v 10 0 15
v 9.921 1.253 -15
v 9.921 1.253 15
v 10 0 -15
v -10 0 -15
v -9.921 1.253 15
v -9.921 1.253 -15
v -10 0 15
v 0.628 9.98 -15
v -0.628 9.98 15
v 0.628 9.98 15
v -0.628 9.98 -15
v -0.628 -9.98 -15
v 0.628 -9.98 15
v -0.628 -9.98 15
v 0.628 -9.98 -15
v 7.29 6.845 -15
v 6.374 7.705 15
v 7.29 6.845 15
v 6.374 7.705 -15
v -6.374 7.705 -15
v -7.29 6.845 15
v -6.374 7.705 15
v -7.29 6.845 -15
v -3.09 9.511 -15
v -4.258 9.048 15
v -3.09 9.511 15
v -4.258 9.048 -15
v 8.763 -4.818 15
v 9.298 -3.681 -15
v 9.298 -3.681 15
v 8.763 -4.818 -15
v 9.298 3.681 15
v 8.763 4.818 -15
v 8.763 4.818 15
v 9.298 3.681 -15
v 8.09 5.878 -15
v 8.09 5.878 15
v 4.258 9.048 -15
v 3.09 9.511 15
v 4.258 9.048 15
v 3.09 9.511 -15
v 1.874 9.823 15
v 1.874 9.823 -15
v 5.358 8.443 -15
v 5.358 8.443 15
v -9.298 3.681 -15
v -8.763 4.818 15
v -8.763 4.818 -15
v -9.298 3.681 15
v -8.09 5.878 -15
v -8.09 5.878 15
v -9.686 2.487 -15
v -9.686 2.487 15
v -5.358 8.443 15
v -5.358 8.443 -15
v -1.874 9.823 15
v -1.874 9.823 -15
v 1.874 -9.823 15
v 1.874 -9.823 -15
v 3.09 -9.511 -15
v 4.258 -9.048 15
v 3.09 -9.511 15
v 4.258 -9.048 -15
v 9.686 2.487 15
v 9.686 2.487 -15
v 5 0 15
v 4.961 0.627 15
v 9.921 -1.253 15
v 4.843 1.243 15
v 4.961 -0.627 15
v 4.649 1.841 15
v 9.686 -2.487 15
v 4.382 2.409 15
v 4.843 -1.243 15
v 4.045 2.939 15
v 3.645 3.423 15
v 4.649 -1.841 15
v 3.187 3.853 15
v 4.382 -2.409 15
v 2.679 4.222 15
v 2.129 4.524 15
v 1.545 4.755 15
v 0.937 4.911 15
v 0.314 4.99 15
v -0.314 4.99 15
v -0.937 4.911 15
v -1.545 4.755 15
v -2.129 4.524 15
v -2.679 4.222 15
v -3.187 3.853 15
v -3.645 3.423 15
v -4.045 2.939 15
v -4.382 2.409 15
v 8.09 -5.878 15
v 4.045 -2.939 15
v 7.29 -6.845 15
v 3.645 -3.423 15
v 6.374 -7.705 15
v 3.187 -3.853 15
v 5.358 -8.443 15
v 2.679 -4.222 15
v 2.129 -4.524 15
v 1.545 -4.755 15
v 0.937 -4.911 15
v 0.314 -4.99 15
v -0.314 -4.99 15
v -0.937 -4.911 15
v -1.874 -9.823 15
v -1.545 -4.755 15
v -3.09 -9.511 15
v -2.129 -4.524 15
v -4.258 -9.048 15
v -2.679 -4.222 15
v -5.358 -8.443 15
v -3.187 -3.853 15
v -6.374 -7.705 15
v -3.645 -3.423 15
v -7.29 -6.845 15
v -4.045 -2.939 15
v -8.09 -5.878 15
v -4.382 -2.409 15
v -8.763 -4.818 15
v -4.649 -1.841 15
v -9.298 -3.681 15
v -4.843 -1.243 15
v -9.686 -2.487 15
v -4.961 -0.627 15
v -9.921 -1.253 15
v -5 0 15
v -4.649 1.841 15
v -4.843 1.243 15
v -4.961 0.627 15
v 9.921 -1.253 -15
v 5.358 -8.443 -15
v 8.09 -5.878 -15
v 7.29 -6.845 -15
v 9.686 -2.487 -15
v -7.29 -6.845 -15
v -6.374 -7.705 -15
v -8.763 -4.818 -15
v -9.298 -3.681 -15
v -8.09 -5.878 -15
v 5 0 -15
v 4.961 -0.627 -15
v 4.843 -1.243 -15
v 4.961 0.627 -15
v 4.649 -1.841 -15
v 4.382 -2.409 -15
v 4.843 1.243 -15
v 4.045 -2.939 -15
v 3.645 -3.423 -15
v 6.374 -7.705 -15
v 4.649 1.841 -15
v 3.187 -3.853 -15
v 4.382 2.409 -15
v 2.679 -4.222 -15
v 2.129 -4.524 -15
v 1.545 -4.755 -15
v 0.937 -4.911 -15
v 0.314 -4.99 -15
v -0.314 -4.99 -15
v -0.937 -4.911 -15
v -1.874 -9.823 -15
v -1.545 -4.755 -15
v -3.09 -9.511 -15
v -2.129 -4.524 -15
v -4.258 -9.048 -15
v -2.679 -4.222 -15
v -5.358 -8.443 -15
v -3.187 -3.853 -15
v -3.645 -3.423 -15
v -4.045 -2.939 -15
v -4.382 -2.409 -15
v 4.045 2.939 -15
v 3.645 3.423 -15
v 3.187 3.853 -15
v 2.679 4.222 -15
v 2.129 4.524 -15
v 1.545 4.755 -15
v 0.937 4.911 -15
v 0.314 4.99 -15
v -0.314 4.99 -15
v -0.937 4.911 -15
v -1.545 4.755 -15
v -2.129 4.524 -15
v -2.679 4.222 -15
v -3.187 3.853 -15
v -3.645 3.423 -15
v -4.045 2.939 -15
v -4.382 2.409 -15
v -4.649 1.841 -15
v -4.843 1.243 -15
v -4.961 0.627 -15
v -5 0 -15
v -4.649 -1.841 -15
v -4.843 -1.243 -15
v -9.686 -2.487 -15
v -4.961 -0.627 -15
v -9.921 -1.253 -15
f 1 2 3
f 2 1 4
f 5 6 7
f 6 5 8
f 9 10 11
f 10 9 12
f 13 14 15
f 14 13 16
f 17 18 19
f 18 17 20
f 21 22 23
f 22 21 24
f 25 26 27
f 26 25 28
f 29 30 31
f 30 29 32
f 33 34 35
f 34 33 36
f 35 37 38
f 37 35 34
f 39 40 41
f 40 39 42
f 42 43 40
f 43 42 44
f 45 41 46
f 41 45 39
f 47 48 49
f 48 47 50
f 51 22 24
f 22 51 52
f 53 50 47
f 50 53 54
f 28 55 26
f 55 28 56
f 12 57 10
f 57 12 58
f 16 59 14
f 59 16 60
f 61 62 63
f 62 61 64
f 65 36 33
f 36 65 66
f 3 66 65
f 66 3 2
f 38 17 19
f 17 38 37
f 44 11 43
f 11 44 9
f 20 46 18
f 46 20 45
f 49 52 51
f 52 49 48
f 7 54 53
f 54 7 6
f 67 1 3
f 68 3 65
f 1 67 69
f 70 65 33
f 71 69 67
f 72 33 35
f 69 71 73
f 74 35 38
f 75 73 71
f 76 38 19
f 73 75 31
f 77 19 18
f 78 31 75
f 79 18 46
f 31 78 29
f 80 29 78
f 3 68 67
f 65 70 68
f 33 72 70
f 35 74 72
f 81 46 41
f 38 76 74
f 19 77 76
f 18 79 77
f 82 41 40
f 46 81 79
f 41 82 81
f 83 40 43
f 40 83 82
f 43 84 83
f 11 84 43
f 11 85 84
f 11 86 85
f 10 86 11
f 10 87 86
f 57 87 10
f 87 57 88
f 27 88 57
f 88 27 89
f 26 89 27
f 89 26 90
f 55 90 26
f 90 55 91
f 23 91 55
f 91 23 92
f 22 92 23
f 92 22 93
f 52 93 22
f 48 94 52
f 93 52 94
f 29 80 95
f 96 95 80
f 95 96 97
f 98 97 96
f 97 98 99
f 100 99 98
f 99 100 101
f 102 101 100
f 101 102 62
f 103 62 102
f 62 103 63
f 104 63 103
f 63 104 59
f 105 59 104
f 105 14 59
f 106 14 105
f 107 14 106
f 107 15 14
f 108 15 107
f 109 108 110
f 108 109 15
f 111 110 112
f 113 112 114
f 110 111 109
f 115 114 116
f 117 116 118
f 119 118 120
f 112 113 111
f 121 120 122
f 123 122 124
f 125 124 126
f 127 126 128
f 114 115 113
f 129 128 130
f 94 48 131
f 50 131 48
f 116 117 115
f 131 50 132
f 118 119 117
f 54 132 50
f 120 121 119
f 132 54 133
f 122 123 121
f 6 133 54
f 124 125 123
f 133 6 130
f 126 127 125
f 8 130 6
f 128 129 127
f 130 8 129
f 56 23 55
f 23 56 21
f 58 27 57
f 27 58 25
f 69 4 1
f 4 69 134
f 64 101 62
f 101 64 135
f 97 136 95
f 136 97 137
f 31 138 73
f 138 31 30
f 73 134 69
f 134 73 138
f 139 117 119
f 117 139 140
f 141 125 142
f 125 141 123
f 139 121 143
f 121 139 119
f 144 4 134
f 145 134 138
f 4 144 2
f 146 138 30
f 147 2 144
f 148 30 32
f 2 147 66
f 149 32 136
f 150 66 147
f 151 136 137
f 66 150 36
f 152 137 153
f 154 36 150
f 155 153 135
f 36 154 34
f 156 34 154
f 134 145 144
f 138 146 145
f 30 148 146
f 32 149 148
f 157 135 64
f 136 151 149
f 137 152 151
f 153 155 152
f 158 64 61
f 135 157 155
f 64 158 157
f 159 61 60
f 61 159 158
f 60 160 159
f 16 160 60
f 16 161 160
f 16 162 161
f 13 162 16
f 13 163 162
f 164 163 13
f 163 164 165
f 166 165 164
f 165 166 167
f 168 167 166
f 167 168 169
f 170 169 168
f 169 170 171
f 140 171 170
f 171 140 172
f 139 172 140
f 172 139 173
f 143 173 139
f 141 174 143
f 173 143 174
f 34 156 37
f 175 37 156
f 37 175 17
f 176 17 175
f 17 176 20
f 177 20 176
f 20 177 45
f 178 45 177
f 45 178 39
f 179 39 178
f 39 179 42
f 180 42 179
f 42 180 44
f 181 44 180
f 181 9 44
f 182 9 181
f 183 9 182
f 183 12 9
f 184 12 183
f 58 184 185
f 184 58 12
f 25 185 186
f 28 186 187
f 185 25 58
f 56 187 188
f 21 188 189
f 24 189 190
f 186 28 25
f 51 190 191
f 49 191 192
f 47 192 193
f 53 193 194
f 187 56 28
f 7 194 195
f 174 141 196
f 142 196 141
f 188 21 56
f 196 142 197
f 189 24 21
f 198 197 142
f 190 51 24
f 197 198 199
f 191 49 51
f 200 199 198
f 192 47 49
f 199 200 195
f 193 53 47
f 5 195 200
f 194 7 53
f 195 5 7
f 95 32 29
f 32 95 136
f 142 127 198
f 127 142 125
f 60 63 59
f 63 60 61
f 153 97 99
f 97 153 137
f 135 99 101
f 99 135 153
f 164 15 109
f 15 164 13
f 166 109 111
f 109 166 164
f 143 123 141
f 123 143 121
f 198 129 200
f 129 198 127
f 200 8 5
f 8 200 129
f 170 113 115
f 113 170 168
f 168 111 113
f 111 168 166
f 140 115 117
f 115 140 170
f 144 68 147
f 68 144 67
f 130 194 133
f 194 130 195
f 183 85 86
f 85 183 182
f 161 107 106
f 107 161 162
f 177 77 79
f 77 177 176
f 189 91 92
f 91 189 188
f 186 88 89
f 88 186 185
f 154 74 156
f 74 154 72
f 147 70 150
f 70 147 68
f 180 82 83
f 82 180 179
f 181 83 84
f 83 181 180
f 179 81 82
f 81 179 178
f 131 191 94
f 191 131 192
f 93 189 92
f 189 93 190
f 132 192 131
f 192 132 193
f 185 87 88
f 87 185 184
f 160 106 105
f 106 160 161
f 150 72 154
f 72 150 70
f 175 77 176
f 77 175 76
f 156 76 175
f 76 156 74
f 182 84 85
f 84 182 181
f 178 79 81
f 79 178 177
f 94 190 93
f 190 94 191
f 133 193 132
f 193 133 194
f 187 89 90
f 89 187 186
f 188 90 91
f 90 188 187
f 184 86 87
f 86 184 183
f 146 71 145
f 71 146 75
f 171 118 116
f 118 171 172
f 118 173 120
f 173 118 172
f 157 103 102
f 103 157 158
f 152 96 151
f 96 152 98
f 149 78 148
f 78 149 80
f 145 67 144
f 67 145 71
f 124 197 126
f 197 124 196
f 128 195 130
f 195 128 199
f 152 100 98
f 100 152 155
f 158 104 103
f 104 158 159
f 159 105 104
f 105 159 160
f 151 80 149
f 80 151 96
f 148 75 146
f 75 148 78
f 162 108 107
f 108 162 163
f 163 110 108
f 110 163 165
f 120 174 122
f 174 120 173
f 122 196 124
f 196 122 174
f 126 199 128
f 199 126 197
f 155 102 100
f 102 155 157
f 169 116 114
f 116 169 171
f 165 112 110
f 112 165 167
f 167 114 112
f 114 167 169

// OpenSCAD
$fn = 50;


difference() {
	union() {
		translate(v = [0, 0, -15.0000000000]) {
			cylinder(h = 30, r = 10.0000000000);
		}
	}
	union() {
		translate(v = [0, 0, -100.0000000000]) {
			cylinder(h = 200, r = 5.0000000000);
		}
	}
}
